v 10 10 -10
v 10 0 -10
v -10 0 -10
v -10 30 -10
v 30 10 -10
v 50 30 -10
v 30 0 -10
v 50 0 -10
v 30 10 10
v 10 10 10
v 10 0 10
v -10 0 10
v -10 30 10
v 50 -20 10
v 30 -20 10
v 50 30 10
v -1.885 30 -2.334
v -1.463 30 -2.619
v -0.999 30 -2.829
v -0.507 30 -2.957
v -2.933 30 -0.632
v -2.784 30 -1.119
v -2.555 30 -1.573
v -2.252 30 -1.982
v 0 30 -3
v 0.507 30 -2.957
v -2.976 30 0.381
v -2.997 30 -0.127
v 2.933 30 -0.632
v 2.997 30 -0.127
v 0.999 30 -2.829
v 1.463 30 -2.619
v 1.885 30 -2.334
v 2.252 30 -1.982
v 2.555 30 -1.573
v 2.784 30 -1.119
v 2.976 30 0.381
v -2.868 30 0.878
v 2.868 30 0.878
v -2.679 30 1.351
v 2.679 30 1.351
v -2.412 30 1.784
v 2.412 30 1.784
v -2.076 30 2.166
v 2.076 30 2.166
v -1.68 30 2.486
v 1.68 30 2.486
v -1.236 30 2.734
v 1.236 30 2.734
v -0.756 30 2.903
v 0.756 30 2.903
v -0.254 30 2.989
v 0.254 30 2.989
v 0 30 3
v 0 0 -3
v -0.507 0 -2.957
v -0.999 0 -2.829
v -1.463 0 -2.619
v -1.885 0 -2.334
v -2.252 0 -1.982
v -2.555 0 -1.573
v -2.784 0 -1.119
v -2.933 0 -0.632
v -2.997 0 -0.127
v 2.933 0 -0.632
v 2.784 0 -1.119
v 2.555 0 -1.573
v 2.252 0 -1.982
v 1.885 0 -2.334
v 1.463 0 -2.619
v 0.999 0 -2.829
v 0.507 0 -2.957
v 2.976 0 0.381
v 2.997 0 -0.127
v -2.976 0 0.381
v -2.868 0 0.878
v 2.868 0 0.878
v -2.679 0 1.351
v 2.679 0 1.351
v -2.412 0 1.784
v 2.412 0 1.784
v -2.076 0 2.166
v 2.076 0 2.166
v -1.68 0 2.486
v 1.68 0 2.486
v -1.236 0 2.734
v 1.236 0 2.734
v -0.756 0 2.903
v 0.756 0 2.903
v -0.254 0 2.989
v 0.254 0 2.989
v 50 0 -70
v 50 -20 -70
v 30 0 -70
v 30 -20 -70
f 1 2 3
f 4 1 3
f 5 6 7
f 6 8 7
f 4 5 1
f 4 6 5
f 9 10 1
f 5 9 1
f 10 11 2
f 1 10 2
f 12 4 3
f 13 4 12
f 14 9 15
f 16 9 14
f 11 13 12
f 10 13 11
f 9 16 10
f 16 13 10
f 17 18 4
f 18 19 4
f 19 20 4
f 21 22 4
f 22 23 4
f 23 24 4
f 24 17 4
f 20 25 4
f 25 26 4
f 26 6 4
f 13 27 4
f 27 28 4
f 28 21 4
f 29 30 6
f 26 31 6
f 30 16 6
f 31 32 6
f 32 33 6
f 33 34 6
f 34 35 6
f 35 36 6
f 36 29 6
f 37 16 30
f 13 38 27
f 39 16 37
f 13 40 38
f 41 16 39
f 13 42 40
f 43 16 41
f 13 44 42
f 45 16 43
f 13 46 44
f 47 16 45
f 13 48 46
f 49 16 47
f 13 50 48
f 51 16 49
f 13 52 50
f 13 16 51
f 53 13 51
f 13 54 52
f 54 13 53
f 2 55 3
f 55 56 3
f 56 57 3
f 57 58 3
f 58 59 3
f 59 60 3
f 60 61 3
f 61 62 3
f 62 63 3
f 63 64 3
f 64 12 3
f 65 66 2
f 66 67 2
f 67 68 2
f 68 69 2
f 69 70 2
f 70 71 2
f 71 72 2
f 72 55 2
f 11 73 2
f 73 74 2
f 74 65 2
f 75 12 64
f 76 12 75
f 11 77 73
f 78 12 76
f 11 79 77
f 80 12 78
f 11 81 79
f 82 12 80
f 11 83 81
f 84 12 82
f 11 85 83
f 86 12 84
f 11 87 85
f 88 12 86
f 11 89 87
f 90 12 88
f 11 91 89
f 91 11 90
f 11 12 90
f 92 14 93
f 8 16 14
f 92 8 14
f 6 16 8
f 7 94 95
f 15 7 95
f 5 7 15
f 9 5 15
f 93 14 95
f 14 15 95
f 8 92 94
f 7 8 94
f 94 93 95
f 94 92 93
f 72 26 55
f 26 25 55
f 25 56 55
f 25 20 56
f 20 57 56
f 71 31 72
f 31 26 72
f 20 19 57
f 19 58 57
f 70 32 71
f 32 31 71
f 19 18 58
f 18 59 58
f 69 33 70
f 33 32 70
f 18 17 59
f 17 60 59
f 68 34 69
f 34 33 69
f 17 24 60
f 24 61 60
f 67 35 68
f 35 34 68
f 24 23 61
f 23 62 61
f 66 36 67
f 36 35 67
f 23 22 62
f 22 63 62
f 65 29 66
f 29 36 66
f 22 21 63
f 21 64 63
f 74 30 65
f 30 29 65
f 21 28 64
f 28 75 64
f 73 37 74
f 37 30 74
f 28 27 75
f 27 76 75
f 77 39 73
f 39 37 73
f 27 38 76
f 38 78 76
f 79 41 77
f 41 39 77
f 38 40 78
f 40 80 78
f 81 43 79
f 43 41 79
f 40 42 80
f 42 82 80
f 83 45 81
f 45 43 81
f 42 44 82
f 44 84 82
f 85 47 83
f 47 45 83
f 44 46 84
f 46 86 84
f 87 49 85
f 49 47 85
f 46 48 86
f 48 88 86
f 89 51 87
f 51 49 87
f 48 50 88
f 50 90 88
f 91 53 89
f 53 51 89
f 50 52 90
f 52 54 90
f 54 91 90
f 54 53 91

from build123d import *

# Parameters (mm, degrees)
SKETCH_1_W          = 20
SKETCH_1_H          = 20
EXTRUDE_1_DEPTH     = 30
SKETCH_2_W          = 20
SKETCH_2_H          = 20
EXTRUDE_2_DEPTH     = 40
SKETCH_6_W          = 20
SKETCH_6_H          = 20
EXTRUDE_3_DEPTH     = 30
SKETCH_7_W          = 20
SKETCH_7_H          = 20
EXTRUDE_4_DEPTH     = 60
SKETCH_8_R          = 3
CUT_EXTRUDE_1_DEPTH = 60


with BuildPart() as part:
    # 草图1 → 凸台-拉伸1 (new body)
    with BuildSketch(Plane(origin=(0, 0, 0), x_dir=(1, 0, 0), z_dir=(0, 1, 0))):
        Rectangle(SKETCH_1_W, SKETCH_1_H)
    extrude(amount=EXTRUDE_1_DEPTH)

    # 草图2 → 凸台-拉伸2 (add)
    with BuildSketch(Plane(origin=(10, 0, 0), x_dir=(0, 0, -1), z_dir=(1, 0, 0))):
        with Locations((0, 20)):
            Rectangle(SKETCH_2_W, SKETCH_2_H)
    extrude(amount=EXTRUDE_2_DEPTH)

    # 草图6 → 凸台-拉伸3 (add)
    with BuildSketch(Plane.XZ.offset(-10)):
        with Locations((40, 0)):
            Rectangle(SKETCH_6_W, SKETCH_6_H)
    extrude(amount=EXTRUDE_3_DEPTH)

    # 草图7 → 凸台-拉伸4 (add)
    with BuildSketch(Plane(origin=(0, 0, -10), x_dir=(-1, 0, 0), z_dir=(0, 0, -1))):
        with Locations((-40, -10)):
            Rectangle(SKETCH_7_W, SKETCH_7_H)
    extrude(amount=EXTRUDE_4_DEPTH)

    # 草图8 → 切除-拉伸1 (cut)
    with BuildSketch(Plane(origin=(0, 0, 0), x_dir=(-1, 0, 0), z_dir=(0, -1, 0))):
        with Locations(Location((0, 0, 0), (0, 0, 90))):
            Circle(SKETCH_8_R)
    extrude(amount=-CUT_EXTRUDE_1_DEPTH, mode=Mode.SUBTRACT)


solid = part.part
